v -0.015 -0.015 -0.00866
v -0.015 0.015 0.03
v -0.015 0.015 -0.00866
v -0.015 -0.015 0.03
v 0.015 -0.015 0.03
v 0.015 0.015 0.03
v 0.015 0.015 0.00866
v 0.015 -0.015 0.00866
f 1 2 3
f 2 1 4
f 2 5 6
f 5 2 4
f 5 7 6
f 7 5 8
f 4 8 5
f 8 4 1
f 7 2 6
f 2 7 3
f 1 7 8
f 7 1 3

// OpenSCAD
FN0 = 50;
side_base=0.03;
angle = 30;
sub_width = 2*side_base;
slope = tan(angle);
y = 1/sqrt(slope*slope+1);
x = -slope/sqrt(slope*slope+1);
difference (){
    translate([0, 0, 0])
    cube([side_base,side_base,2*side_base], center = true,$fn=FN0);

translate([-0.5*x*sub_width, 0,-0.5*y*sub_width]){
rotate(a=90-angle,v=[0,1,0]) { 
    
    cube([sub_width,sub_width,2*sub_width], center = true,$fn=FN0);
    }

}

}
